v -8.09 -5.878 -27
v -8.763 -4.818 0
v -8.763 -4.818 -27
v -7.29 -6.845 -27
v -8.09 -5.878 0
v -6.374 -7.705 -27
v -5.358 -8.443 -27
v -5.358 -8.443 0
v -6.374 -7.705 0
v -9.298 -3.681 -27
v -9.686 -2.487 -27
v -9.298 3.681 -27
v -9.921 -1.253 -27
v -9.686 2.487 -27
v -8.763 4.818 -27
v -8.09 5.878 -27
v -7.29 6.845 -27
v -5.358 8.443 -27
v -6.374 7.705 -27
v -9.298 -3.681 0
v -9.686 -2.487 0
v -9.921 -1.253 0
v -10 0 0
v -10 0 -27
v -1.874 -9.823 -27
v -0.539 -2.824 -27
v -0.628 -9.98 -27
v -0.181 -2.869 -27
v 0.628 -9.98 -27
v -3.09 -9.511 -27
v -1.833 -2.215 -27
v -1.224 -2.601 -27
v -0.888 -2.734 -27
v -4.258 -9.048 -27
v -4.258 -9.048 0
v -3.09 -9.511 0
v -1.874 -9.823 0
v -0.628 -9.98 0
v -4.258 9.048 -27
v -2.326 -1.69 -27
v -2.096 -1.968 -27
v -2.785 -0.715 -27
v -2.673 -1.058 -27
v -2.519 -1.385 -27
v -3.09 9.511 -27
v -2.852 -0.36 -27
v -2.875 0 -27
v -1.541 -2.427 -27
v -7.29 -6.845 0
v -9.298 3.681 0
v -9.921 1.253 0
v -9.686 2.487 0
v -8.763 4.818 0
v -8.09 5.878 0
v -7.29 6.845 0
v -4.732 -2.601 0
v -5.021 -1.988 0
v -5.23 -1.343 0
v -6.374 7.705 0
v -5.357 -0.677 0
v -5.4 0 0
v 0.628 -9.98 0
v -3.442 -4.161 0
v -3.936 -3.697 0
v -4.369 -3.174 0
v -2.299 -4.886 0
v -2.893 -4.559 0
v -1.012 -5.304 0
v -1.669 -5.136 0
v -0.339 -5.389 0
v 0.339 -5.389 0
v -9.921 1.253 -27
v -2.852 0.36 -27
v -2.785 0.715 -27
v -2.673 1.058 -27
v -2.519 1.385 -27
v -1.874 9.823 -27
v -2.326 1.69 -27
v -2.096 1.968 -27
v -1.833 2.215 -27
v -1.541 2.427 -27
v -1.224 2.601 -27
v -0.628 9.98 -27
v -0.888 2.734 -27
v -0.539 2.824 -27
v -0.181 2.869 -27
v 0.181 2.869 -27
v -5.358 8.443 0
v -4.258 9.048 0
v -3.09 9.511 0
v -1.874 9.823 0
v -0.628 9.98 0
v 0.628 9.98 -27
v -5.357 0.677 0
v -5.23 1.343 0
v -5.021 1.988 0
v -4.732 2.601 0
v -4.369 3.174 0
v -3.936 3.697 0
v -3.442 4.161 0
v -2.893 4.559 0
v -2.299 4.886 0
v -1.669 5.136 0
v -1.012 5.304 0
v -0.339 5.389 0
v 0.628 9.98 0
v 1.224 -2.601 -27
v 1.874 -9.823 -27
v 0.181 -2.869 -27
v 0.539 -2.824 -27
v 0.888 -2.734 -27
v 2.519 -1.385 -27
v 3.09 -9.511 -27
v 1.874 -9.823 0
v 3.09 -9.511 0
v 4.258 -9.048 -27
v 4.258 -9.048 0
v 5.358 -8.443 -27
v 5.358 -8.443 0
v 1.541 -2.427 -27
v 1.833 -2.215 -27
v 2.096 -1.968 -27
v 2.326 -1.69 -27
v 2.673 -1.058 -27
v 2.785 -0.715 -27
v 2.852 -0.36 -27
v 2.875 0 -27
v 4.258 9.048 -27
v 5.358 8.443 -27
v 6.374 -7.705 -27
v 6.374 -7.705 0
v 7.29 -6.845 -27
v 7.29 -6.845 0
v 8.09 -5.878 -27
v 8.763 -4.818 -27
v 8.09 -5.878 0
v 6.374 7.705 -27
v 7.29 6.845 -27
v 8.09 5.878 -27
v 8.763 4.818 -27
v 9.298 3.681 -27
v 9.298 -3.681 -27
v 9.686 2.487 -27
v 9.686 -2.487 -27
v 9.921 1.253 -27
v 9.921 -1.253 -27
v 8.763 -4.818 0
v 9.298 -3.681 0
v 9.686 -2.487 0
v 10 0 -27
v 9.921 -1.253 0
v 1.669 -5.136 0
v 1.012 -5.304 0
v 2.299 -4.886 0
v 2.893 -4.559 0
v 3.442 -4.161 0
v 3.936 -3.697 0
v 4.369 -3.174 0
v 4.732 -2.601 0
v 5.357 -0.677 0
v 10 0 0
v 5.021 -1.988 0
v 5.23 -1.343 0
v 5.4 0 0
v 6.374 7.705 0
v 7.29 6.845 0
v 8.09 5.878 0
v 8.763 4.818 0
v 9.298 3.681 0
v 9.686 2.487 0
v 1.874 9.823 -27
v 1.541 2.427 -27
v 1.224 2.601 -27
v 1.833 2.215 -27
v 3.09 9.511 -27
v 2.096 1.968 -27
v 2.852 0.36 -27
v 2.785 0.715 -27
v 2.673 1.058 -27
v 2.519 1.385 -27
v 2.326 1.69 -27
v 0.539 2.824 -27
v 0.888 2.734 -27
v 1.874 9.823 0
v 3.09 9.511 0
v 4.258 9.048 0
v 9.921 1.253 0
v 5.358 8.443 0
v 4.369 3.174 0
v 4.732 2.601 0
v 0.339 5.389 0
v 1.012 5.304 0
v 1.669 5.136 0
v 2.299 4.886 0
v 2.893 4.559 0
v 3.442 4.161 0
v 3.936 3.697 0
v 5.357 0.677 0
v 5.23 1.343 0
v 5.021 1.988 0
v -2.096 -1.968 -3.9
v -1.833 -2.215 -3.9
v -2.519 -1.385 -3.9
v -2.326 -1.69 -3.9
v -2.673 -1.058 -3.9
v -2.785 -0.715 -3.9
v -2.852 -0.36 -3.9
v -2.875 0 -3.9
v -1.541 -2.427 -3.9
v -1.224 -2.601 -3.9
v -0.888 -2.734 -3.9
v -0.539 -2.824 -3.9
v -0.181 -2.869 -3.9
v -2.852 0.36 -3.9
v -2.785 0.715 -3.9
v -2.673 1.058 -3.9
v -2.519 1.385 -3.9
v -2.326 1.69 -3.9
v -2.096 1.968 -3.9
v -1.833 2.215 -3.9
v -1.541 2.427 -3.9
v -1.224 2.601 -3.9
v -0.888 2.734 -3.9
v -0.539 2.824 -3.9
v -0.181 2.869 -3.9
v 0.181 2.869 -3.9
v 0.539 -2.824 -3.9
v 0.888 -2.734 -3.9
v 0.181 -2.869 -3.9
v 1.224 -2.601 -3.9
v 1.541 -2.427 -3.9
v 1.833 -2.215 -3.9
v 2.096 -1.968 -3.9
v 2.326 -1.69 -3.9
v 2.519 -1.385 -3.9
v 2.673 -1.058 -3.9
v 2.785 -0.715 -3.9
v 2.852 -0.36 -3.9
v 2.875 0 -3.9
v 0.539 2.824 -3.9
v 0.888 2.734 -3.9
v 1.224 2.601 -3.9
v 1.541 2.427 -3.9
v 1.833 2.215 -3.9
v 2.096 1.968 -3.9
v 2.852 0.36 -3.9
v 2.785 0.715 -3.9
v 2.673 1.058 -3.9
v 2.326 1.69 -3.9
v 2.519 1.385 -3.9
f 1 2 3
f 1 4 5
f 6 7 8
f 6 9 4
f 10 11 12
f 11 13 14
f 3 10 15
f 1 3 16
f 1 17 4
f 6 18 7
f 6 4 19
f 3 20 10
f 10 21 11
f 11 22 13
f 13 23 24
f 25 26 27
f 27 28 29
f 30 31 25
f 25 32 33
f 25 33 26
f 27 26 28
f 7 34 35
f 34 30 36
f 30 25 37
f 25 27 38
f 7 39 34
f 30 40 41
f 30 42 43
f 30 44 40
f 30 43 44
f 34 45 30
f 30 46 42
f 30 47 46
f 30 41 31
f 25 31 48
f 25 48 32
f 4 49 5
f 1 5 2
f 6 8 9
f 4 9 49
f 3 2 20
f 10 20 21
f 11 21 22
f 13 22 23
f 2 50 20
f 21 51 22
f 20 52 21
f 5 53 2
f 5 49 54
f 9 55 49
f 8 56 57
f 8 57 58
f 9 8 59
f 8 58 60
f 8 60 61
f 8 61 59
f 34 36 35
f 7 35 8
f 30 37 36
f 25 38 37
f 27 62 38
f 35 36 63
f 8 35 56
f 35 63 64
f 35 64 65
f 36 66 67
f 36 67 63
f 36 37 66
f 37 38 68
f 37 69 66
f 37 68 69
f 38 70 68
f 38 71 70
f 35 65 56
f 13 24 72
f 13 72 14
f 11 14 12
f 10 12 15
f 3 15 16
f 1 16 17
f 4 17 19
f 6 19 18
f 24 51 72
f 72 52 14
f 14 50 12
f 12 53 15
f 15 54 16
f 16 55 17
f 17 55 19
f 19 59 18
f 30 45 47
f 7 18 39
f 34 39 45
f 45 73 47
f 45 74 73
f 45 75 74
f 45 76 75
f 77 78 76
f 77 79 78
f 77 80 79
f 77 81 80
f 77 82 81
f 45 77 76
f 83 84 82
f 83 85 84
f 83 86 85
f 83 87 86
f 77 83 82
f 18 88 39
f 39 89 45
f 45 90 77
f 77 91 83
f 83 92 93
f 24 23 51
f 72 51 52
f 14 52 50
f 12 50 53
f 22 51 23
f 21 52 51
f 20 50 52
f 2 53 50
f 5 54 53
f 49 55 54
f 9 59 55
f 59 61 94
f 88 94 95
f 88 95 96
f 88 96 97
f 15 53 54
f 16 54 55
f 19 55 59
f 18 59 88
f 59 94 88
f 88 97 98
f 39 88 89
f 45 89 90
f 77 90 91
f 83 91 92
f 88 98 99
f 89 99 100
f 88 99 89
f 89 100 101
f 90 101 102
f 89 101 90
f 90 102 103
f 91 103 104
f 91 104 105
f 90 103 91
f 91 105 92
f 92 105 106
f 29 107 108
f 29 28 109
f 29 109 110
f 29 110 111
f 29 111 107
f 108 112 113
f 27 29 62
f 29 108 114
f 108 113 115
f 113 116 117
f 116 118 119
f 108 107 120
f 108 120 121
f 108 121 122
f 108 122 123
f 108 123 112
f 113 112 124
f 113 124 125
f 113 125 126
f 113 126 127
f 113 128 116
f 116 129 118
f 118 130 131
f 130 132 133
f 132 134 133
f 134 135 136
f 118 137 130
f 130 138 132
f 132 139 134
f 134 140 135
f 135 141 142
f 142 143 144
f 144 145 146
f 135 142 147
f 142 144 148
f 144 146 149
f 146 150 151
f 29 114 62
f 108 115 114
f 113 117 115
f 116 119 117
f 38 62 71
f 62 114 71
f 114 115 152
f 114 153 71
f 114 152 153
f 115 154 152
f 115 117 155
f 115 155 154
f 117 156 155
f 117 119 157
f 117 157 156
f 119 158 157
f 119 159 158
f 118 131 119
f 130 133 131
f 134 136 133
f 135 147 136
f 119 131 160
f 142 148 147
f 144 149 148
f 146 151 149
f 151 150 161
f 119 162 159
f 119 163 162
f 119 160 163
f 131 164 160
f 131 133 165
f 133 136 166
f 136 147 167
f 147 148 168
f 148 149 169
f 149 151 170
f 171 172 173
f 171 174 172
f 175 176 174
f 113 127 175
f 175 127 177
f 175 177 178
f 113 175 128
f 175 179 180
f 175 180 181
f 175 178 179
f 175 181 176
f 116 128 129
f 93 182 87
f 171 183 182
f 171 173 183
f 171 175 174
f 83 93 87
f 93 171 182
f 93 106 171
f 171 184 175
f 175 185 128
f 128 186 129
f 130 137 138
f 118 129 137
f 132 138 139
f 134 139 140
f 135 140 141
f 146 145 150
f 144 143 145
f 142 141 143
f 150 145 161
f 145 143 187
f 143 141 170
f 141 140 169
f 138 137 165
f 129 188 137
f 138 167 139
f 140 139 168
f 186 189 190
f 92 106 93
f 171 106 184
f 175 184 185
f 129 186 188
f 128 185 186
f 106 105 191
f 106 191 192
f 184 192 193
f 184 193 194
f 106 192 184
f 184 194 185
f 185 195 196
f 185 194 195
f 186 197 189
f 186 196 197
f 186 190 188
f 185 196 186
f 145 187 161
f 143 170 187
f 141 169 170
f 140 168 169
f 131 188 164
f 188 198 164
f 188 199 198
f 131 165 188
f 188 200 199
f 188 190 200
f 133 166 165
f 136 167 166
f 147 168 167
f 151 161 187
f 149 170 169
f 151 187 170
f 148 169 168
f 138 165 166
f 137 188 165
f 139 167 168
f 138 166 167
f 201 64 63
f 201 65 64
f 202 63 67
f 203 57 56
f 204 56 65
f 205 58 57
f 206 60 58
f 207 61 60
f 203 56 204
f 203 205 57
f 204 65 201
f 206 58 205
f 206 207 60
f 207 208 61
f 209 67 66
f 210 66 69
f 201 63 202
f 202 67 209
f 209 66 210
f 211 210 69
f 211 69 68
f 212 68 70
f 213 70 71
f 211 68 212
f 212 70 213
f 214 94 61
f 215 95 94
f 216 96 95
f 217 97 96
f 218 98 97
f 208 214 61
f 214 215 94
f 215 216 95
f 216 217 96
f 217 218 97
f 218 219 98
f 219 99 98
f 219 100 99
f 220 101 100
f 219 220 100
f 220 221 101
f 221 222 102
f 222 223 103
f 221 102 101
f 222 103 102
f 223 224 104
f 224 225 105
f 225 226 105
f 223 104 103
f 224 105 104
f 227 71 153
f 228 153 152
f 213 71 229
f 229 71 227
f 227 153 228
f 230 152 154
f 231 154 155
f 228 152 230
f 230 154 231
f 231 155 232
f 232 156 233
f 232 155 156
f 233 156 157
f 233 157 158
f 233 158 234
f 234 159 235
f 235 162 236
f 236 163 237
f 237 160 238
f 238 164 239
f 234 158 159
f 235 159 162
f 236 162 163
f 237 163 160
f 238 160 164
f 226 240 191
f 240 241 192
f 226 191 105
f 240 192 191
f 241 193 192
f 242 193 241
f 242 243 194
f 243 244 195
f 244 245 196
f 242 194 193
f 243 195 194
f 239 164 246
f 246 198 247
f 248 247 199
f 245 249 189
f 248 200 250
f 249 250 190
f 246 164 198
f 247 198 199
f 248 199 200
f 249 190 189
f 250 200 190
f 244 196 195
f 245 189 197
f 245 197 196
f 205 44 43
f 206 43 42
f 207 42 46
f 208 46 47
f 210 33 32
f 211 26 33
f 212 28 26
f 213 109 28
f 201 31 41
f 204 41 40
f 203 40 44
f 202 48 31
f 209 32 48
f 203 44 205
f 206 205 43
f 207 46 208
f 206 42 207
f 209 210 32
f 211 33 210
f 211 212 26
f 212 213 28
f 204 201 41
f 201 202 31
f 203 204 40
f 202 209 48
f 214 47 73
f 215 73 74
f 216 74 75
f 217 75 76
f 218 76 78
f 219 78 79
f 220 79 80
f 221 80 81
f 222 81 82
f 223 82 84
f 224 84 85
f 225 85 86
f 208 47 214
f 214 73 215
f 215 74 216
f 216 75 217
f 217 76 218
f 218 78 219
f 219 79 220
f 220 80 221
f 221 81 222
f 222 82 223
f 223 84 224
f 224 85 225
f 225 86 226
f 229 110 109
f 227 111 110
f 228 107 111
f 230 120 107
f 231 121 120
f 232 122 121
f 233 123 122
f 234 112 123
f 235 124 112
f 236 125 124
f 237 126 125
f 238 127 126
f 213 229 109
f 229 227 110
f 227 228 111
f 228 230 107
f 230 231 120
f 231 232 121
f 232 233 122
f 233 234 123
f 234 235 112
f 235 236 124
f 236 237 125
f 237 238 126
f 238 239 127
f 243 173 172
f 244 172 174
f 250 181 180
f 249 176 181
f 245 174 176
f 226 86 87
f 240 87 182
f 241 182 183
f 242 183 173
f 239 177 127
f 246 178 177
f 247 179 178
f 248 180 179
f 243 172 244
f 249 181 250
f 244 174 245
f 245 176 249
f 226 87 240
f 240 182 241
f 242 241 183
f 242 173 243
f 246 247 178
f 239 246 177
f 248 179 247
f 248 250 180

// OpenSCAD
$fn = 50;


difference() {
	union() {
		translate(v = [0, 0, -27.0000000000]) {
			cylinder(h = 27, r = 10.0000000000);
		}
		#translate(v = [0, 0, -30.0000000000]) {
			cylinder(h = 30, r = 2.8750000000);
		}
	}
	union() {
		translate(v = [0, 0, 0]) {
			rotate(a = [0, 0, 0]) {
				difference() {
					union() {
						translate(v = [0, 0, -30.0000000000]) {
							cylinder(h = 30, r = 2.6000000000);
						}
						translate(v = [0, 0, -3.9000000000]) {
							cylinder(h = 3.9000000000, r1 = 2.8750000000, r2 = 5.4000000000);
						}
						translate(v = [0, 0, -30.0000000000]) {
							cylinder(h = 30, r = 2.8750000000);
						}
						translate(v = [0, 0, -30.0000000000]) {
							cylinder(h = 30, r = 2.6000000000);
						}
					}
					union();
				}
			}
		}
	}
}
